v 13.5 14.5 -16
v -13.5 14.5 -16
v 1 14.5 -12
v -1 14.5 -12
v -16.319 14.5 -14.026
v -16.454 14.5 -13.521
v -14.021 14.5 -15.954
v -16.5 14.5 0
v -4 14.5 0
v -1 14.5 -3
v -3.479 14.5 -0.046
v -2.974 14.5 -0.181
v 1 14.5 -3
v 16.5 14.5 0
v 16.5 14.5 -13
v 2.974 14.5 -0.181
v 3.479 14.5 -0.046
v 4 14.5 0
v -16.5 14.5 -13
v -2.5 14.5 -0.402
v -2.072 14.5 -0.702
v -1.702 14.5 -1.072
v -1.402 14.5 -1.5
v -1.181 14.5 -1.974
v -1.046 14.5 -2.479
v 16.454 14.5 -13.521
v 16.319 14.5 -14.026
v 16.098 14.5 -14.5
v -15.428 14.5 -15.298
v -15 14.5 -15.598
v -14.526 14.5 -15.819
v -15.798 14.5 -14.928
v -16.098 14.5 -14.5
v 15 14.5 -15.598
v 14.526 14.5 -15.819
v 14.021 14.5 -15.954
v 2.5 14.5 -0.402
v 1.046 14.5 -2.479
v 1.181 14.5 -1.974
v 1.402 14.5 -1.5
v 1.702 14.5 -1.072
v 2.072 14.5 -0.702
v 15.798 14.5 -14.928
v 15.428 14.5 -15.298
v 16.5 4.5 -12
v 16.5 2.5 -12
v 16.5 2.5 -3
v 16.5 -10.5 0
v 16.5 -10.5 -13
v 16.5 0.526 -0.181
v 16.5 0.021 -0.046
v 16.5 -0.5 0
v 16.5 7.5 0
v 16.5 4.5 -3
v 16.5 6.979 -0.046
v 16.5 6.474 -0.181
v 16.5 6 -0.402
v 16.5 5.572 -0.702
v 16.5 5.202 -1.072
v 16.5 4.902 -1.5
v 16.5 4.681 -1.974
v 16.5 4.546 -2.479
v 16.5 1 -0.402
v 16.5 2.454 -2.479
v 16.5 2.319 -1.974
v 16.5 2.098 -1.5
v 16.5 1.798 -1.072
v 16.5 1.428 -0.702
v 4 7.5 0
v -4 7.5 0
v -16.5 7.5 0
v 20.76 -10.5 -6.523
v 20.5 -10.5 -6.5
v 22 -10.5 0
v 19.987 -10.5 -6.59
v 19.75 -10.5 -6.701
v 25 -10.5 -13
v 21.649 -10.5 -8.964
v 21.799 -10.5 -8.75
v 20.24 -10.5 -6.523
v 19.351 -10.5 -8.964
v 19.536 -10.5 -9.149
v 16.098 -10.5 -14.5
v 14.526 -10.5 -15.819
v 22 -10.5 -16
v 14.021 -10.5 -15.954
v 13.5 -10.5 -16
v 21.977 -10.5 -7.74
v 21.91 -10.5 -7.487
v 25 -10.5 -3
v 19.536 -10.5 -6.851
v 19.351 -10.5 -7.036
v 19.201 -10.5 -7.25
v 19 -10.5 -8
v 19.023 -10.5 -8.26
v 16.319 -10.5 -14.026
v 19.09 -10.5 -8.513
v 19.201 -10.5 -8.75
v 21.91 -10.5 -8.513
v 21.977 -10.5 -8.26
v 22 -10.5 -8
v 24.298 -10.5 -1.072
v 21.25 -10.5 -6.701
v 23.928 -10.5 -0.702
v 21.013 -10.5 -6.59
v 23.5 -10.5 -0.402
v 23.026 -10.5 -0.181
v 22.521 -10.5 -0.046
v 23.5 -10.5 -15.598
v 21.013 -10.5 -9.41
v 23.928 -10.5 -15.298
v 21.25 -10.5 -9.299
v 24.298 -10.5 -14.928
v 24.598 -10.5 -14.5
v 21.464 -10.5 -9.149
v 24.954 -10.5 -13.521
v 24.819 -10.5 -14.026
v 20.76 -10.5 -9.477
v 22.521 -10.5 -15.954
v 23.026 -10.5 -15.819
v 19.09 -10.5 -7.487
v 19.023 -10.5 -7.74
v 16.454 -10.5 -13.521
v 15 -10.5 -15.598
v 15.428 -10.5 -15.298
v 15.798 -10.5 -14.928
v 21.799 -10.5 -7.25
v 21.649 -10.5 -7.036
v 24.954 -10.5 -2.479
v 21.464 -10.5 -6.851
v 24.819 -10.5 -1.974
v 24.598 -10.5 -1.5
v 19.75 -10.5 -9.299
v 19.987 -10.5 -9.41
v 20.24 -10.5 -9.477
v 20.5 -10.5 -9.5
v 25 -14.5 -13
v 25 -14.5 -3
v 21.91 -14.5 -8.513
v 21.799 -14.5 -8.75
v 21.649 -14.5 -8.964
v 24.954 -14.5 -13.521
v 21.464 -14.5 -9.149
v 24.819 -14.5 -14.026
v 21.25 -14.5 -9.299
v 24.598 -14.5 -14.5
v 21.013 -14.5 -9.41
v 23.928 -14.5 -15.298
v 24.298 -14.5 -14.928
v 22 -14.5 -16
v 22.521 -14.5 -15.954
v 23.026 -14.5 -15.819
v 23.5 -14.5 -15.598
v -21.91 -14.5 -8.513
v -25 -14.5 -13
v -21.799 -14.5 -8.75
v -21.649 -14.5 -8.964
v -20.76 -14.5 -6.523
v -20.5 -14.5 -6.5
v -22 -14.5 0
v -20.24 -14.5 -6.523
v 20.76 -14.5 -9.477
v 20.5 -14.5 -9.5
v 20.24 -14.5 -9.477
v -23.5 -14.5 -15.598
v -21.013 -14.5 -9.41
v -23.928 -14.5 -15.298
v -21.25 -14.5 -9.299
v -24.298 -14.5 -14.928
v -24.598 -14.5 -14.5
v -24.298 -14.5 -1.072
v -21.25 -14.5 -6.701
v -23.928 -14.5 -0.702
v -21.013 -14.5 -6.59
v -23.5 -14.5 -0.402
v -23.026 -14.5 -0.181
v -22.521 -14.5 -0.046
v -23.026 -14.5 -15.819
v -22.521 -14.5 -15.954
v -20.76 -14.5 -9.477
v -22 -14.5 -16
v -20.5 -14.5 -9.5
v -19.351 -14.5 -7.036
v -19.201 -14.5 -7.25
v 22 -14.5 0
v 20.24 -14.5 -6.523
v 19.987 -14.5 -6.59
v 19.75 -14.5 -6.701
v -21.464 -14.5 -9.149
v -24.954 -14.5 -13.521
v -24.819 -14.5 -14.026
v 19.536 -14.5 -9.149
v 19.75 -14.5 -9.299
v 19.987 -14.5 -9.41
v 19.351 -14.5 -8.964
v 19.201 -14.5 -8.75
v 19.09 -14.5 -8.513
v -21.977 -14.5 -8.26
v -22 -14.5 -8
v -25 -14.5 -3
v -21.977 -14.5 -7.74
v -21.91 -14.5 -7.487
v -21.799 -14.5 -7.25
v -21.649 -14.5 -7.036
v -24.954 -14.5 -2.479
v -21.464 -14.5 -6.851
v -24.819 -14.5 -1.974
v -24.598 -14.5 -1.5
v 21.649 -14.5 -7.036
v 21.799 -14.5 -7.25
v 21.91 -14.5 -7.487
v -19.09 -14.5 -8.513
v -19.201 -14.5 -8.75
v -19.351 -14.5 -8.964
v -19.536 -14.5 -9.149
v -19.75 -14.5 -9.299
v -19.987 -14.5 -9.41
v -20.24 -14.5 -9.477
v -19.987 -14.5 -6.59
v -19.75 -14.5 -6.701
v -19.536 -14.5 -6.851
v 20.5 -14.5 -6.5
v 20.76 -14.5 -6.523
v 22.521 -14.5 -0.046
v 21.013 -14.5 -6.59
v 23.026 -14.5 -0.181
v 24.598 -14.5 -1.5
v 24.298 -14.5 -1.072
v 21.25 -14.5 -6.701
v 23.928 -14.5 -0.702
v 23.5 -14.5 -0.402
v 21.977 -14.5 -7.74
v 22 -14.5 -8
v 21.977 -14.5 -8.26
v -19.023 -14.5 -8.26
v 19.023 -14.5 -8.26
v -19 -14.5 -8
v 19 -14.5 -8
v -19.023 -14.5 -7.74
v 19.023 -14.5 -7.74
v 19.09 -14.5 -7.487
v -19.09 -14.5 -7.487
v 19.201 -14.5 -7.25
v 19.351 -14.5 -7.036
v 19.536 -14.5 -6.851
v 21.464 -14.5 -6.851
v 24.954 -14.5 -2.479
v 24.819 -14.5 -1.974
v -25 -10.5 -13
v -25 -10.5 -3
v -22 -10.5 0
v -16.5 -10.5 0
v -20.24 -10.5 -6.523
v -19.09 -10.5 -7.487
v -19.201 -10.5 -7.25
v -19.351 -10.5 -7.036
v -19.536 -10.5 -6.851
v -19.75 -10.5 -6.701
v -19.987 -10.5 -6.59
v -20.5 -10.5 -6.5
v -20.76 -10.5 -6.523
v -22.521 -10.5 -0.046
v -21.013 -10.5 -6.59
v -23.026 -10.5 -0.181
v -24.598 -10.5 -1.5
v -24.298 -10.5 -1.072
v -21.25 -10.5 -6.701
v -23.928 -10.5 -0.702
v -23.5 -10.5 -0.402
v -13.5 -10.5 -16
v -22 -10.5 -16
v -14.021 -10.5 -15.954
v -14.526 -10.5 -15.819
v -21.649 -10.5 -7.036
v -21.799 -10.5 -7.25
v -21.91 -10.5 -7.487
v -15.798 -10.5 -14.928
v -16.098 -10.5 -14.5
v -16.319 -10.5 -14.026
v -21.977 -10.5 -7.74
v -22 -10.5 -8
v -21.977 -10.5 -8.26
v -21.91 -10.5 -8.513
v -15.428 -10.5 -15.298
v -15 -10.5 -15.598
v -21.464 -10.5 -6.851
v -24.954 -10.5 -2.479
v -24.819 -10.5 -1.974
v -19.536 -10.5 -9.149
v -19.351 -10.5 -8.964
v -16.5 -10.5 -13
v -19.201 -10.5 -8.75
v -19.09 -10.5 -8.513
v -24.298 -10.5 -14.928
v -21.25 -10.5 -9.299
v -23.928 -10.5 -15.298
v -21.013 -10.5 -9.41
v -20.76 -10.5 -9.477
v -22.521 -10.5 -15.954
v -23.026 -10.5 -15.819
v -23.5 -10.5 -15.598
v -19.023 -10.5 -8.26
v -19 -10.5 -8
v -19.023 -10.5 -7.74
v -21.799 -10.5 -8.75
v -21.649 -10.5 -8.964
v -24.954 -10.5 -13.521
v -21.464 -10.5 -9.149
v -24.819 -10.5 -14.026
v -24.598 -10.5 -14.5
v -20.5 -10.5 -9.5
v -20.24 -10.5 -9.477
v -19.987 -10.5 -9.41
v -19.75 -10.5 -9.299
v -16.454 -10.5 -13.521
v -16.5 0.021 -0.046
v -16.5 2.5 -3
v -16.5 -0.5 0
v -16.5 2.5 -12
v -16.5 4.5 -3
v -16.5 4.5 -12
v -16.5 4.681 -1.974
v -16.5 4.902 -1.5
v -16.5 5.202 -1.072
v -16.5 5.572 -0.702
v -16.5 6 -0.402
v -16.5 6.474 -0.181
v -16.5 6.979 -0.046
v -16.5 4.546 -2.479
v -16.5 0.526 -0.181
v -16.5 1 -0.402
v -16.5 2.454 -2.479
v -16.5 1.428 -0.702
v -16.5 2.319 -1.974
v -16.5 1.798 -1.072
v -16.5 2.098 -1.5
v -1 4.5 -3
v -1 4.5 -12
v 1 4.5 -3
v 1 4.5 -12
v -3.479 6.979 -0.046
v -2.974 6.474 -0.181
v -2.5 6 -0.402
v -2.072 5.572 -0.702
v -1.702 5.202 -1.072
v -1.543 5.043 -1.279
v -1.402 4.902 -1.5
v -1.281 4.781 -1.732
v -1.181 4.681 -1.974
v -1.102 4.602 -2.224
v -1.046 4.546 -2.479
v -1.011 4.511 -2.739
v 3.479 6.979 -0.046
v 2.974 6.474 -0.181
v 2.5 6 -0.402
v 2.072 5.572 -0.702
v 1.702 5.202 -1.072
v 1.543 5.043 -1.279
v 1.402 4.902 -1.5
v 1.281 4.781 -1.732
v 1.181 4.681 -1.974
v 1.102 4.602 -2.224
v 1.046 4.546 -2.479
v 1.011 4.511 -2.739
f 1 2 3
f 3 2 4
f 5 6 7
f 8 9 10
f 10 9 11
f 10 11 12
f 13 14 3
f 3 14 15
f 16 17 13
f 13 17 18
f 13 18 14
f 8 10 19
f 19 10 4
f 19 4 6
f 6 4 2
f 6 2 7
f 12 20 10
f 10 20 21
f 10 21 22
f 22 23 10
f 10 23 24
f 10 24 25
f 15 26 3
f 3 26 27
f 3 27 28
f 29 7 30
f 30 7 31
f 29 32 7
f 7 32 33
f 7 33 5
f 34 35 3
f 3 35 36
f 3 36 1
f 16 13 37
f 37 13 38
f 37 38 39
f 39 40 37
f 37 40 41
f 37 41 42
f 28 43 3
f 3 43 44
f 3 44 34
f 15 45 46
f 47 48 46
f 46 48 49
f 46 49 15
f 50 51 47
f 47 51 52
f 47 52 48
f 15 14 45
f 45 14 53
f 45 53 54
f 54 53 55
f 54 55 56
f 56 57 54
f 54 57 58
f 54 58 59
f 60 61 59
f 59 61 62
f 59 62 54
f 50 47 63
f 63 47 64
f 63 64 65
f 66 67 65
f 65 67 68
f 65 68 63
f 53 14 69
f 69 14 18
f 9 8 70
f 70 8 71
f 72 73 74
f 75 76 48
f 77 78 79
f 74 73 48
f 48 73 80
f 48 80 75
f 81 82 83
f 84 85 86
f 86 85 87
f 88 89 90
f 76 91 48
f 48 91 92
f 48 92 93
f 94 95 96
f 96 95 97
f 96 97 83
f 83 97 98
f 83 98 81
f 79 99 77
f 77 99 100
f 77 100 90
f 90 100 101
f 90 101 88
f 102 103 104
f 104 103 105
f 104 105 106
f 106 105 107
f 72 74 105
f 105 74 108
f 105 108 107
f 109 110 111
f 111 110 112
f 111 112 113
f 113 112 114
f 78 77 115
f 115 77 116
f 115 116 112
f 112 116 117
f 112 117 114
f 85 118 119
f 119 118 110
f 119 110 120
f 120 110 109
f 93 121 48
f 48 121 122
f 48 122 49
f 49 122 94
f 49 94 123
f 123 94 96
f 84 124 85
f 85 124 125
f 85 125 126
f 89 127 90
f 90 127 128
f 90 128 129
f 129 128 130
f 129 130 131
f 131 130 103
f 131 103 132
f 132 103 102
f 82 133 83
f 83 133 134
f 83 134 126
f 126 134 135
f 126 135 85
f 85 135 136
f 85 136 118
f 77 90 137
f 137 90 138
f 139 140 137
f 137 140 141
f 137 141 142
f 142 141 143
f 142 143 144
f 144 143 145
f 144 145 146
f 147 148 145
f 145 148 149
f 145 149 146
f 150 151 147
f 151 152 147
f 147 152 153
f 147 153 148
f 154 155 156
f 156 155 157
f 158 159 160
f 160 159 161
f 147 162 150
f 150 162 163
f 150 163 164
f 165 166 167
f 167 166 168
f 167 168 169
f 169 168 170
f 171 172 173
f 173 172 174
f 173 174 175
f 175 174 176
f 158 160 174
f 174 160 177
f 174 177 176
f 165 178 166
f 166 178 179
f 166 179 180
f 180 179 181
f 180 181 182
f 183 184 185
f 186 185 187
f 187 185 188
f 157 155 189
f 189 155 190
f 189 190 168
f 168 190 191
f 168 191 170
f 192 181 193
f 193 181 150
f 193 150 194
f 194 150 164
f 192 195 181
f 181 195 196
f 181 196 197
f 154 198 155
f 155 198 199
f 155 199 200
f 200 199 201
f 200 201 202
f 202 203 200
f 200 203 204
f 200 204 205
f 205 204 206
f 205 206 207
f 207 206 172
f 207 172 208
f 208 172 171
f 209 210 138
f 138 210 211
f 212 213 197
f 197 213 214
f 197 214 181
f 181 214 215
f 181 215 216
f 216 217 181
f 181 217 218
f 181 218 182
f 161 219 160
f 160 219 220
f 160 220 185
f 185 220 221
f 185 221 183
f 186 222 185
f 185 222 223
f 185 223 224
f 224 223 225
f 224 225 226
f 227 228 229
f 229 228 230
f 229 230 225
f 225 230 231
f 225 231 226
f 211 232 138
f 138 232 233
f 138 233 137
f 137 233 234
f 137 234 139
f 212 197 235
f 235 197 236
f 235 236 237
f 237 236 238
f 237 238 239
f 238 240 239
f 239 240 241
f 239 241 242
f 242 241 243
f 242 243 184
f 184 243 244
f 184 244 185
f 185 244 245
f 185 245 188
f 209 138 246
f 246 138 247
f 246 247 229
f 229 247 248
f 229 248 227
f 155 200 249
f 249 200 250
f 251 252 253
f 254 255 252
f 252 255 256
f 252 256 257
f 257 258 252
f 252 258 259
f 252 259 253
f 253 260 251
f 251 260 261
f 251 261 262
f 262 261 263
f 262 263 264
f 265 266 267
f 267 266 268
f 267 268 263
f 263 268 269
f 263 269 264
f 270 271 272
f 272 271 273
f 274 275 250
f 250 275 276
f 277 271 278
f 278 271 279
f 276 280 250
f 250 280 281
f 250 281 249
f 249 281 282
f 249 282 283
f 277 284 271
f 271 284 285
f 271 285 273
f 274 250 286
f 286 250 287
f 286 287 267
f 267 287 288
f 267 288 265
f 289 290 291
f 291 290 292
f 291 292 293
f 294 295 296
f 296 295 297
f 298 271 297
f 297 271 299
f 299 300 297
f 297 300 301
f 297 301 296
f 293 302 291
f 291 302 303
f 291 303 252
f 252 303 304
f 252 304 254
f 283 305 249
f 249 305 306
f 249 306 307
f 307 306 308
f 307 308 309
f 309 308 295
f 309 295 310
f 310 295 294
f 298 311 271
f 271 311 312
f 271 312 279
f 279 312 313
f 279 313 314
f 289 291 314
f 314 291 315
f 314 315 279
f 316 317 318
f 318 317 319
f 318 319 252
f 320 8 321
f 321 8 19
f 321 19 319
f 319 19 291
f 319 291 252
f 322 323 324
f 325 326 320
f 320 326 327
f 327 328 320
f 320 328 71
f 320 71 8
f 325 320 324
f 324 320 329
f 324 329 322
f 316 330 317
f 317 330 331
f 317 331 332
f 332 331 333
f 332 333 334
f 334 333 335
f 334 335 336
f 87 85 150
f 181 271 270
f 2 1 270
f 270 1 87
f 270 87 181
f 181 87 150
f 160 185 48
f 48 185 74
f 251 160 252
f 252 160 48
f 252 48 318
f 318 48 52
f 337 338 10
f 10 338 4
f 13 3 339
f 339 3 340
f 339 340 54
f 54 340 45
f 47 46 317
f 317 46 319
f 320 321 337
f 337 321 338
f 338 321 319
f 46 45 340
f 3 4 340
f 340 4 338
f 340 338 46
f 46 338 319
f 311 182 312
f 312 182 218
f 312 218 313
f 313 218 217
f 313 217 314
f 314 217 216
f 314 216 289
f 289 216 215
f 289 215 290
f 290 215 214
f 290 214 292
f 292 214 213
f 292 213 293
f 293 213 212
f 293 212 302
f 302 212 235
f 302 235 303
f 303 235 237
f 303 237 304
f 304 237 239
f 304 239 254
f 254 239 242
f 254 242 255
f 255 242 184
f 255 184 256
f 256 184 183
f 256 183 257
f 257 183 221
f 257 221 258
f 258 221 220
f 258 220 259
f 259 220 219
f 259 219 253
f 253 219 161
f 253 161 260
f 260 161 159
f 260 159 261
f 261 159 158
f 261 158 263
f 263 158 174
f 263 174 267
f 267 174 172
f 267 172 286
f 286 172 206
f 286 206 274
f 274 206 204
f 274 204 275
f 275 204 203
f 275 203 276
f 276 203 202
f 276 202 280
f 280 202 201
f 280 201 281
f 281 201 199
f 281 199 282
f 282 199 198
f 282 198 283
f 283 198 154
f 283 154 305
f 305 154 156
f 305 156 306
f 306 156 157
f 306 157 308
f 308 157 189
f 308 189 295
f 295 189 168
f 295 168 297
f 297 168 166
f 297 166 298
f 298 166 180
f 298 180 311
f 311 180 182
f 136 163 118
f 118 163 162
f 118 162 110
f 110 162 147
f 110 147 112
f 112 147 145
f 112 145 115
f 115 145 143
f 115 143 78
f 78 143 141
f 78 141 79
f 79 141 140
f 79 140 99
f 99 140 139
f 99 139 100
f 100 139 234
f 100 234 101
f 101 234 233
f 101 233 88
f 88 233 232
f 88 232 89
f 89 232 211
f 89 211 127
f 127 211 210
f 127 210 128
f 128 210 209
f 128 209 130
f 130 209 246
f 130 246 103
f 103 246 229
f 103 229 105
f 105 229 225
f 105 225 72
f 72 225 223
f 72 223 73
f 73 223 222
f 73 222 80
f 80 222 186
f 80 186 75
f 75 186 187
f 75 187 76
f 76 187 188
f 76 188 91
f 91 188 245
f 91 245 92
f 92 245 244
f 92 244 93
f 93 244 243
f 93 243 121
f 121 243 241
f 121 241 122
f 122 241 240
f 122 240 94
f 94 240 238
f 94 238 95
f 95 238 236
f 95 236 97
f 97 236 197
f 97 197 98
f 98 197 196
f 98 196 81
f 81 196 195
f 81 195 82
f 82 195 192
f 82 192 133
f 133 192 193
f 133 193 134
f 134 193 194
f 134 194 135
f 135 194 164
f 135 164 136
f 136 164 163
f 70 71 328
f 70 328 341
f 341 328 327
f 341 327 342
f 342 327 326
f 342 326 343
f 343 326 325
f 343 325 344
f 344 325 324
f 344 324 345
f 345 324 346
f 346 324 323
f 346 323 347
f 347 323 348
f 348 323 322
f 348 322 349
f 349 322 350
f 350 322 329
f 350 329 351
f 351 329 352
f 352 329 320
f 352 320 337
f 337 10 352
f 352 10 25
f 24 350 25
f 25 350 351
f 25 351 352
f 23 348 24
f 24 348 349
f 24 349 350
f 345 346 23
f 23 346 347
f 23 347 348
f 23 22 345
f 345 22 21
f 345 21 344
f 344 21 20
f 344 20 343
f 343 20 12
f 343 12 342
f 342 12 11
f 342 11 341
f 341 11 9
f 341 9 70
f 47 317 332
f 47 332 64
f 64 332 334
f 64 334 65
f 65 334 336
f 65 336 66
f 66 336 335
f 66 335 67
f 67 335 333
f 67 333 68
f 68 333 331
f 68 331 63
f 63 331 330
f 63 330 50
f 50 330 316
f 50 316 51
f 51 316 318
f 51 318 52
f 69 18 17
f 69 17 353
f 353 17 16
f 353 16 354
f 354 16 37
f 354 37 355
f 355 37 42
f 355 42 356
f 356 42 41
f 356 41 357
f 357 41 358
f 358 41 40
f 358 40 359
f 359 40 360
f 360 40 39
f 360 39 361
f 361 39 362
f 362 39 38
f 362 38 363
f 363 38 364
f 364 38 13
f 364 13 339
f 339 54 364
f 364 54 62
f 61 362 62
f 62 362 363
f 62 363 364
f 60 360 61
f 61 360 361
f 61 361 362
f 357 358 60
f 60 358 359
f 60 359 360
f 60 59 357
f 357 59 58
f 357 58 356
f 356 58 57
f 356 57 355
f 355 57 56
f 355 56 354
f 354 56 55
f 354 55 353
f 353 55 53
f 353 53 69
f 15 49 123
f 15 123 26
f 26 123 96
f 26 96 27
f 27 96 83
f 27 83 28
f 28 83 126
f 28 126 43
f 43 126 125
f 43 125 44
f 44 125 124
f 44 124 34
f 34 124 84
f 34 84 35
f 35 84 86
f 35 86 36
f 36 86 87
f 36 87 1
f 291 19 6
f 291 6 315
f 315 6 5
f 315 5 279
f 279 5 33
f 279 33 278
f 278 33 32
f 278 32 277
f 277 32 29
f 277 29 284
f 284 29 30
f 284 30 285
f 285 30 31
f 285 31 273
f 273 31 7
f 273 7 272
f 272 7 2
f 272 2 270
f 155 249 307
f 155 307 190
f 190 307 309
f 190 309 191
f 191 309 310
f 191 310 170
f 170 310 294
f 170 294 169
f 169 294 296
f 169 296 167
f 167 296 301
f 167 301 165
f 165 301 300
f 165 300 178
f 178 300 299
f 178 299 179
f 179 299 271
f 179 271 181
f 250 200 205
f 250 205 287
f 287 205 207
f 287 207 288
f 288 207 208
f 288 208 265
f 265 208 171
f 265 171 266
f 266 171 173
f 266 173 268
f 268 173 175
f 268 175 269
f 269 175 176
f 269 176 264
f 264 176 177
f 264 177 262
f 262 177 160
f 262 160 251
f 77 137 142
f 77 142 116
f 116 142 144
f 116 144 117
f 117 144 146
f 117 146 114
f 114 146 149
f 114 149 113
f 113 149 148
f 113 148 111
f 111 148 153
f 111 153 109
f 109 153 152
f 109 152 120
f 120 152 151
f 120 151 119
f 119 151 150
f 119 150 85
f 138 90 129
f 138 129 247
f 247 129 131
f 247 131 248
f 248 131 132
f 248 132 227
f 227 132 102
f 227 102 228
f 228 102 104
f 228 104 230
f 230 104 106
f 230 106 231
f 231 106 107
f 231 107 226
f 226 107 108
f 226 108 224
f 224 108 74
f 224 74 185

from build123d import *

# Parameters (mm, degrees)
EXTRUDE1_DEPTH = 16
EXTRUDE6_DEPTH = 12
SKETCH3_R      = 1.5
EXTRUDE7_DEPTH = 4
FILLET1_R      = 3
FILLET2_R      = 3


with BuildPart() as part:
    # Sketch1 → Extrude1 (new body)
    with BuildSketch(Plane.XY):
        Polygon((16.5, -10.5), (25, -10.5), (25, -14.5), (-25, -14.5), (-25, -10.5), (-16.5, -10.5), (-16.5, 14.5), (16.5, 14.5), align=None)
    extrude(amount=-EXTRUDE1_DEPTH)

    # Sketch2 → Extrude6 (cut)
    with BuildSketch(Plane.XY):
        Polygon((1, 14.5), (-1, 14.5), (-1, 4.5), (-16.5, 4.5), (-16.5, 2.5), (16.5, 2.5), (16.5, 4.5), (1, 4.5), align=None)
    extrude(amount=-EXTRUDE6_DEPTH, mode=Mode.SUBTRACT)

    # Sketch3 → Extrude7 (cut)
    with BuildSketch(Plane.XZ.offset(14.5)):
        with Locations((-20.5, -8)):
            Circle(SKETCH3_R)
        with Locations((20.5, -8)):
            Circle(SKETCH3_R)
    extrude(amount=-EXTRUDE7_DEPTH, mode=Mode.SUBTRACT)

    # Fillet1
    fillet1_edges = [part.edges().sort_by_distance(p)[0] for p in [
        (-1, 9.5, 0),
        (8.75, 4.5, 0),
        (-8.75, 4.5, 0),
        (0, 2.5, 0),
        (1, 9.5, 0),
    ]]
    fillet(fillet1_edges, radius=FILLET1_R)

    # Fillet2
    fillet2_edges = [part.edges().sort_by_distance(p)[0] for p in [
        (-25, -12.5, 0),
        (-16.5, 2, -16),
        (-25, -12.5, -16),
        (25, -12.5, -16),
        (16.5, 2, -16),
        (25, -12.5, 0),
    ]]
    fillet(fillet2_edges, radius=FILLET2_R)


solid = part.part
